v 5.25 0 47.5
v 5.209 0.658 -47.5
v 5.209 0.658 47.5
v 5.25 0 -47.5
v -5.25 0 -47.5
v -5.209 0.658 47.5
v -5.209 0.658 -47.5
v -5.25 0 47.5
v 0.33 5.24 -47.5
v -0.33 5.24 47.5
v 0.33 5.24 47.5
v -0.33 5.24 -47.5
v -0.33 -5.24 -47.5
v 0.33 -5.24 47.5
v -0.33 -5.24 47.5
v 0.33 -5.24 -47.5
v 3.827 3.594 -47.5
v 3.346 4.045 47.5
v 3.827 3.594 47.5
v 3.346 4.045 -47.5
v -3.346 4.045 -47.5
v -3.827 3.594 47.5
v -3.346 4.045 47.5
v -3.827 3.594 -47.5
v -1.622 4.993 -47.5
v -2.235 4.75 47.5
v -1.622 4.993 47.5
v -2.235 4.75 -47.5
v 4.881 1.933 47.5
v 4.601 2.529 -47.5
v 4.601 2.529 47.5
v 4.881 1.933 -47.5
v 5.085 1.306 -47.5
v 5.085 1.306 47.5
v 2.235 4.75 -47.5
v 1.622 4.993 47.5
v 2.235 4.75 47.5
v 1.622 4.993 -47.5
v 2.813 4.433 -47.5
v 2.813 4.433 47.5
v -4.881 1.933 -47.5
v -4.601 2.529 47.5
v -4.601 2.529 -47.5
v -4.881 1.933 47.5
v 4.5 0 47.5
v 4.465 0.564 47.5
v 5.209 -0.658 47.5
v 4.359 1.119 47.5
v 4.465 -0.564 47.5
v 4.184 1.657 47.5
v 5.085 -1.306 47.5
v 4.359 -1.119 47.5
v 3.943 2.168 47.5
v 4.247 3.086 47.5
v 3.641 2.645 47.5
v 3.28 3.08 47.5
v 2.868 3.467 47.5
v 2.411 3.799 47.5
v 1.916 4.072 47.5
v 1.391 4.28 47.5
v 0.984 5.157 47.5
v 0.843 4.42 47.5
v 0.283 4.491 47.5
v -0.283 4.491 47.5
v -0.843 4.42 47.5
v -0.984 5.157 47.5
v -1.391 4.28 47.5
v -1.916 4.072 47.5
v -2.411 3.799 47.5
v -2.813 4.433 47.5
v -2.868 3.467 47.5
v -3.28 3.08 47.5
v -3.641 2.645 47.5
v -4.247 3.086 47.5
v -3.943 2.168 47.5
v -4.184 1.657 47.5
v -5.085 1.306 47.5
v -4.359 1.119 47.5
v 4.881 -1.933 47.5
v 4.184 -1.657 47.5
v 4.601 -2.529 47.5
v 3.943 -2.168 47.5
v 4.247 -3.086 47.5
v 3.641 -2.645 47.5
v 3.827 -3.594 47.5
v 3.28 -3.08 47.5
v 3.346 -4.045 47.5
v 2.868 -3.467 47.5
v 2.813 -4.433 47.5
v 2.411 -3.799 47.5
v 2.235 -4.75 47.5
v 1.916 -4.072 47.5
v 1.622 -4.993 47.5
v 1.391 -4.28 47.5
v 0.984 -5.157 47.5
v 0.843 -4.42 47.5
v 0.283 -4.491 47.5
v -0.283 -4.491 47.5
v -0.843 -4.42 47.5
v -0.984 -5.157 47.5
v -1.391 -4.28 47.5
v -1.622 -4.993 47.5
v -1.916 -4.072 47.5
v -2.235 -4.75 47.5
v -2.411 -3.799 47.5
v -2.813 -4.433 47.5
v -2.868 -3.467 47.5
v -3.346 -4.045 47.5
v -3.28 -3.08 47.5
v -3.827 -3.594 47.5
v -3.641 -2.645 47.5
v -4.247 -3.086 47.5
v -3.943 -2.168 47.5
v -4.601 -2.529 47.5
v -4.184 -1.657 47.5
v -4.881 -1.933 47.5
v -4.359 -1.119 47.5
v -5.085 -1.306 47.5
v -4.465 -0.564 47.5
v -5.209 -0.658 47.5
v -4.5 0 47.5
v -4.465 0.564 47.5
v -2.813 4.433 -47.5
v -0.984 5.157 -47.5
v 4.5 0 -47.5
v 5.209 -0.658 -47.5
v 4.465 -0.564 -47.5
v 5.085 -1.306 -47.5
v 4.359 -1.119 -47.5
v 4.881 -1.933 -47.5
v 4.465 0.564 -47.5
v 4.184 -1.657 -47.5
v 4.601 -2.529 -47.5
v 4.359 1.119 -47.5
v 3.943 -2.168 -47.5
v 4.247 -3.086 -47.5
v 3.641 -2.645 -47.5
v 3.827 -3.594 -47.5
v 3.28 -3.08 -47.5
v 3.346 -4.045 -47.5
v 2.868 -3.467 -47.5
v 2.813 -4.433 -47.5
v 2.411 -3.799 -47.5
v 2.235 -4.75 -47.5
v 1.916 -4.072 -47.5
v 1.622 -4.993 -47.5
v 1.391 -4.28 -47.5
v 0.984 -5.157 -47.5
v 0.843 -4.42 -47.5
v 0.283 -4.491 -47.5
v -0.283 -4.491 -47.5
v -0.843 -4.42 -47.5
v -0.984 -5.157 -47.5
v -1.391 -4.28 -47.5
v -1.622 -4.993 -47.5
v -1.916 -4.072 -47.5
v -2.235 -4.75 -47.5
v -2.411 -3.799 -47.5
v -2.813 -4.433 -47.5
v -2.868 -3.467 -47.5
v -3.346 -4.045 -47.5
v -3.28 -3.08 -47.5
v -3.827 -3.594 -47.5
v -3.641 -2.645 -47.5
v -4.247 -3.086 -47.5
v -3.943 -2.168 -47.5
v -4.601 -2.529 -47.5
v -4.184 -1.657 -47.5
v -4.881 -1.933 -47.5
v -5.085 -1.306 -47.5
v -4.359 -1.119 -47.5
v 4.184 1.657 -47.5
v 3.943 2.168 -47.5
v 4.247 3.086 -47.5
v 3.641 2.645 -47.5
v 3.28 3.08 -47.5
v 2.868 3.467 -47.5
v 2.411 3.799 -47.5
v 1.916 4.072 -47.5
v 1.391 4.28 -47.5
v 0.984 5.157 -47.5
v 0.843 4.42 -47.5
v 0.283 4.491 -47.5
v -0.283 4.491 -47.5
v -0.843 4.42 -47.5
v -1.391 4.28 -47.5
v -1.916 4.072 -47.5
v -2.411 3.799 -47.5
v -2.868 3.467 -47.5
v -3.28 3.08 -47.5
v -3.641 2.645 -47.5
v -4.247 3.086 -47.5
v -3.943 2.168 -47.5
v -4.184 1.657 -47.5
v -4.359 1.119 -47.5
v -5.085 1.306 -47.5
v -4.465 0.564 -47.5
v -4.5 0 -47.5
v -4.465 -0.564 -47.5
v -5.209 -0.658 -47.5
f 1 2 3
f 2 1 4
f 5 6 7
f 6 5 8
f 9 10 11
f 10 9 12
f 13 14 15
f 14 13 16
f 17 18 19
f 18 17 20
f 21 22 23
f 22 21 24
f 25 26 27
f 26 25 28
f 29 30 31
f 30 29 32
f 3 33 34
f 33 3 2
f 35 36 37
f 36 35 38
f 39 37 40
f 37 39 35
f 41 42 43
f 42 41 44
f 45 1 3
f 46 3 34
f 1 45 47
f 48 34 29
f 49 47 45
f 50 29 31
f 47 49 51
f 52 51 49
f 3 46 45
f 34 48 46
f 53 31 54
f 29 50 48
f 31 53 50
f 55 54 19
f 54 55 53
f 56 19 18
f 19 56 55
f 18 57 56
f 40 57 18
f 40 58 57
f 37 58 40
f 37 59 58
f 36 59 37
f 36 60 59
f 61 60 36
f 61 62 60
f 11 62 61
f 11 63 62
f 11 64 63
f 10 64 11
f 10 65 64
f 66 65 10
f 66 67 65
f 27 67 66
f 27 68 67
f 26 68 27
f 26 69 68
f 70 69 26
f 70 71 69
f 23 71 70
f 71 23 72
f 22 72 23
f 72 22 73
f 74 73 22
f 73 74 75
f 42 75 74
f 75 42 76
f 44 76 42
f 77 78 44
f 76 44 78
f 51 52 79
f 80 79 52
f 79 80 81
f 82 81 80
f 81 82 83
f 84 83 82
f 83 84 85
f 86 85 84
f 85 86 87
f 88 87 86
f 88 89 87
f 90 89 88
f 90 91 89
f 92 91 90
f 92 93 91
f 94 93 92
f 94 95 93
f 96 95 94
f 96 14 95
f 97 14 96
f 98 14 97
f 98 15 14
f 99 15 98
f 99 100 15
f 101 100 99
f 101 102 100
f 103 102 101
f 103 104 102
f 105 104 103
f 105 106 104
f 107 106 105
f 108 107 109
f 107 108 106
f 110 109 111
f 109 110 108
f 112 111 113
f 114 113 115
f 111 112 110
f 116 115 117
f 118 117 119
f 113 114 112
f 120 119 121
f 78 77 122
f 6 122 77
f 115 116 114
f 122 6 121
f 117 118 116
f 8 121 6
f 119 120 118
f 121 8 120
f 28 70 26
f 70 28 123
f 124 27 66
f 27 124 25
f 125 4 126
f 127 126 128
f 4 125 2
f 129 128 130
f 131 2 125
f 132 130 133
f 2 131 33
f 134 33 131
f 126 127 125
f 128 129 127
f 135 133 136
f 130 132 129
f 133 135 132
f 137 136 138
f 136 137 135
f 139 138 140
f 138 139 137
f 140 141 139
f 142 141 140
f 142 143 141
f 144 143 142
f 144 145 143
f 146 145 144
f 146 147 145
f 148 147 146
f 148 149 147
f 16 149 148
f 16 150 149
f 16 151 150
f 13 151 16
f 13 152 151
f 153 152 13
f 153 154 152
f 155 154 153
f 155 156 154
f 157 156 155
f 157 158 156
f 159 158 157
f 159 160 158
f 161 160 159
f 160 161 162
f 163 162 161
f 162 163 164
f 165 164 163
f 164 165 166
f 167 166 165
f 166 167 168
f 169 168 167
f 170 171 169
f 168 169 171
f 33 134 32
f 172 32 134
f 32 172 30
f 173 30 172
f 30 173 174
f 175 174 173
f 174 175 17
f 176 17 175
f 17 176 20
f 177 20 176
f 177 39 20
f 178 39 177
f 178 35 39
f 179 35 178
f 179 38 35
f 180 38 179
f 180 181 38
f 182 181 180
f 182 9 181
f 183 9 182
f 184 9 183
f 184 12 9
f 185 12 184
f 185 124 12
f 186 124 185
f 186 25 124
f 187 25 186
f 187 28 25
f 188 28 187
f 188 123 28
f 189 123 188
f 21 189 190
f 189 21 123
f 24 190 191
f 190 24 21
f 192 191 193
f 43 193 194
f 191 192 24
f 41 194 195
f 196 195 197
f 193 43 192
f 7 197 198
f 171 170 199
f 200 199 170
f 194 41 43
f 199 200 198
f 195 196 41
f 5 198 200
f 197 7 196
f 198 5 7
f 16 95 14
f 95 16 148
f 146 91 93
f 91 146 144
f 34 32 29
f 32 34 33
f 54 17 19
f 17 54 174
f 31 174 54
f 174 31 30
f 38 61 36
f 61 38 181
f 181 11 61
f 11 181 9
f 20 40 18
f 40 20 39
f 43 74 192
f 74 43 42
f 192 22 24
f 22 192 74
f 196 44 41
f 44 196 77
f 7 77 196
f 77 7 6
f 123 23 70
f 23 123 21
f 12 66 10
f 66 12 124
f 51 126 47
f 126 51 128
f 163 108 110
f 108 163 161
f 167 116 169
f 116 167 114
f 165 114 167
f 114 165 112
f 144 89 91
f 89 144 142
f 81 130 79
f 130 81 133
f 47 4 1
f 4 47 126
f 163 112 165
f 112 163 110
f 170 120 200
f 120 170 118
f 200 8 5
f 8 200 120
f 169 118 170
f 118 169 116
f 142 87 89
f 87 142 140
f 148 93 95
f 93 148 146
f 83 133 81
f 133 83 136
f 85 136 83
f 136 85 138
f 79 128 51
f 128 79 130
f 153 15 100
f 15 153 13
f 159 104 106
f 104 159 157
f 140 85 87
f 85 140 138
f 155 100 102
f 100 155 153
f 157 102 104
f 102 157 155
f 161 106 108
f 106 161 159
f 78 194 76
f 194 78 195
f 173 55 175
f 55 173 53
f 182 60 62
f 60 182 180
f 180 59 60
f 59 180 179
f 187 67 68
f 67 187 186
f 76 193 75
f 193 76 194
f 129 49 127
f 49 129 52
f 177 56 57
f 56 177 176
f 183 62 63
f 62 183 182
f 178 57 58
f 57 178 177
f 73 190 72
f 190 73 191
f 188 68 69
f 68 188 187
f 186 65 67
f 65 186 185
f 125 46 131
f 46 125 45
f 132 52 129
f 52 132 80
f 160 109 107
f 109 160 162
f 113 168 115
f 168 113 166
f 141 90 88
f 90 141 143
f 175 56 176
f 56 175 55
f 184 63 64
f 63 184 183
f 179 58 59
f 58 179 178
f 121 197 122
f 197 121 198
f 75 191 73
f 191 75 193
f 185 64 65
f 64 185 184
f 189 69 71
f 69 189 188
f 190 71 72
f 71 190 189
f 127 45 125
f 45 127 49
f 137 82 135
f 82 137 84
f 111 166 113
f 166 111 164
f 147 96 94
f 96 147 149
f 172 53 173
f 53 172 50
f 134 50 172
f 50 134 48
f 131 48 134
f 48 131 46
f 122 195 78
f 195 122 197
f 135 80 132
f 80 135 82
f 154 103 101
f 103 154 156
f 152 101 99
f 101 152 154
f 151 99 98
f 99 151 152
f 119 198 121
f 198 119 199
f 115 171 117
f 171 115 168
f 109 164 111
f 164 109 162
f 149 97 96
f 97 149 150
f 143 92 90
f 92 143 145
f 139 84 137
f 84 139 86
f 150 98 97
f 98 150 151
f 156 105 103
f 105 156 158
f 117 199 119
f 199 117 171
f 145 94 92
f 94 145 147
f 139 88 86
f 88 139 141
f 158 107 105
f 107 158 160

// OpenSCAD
$fn = 50;


difference() {
	union() {
		translate(v = [0, 0, -47.5000000000]) {
			cylinder(h = 95, r = 5.2500000000);
		}
	}
	union() {
		translate(v = [0, 0, -100.0000000000]) {
			cylinder(h = 200, r = 4.5000000000);
		}
	}
}
